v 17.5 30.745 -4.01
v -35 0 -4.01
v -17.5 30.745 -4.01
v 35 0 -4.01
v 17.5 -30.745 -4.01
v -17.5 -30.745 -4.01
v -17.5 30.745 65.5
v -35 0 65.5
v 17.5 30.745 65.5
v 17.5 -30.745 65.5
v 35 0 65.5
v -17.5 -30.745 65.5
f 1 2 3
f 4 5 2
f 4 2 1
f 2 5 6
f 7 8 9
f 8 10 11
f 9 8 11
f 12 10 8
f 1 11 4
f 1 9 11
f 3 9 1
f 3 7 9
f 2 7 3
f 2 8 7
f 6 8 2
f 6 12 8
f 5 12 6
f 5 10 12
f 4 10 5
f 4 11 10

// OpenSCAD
/* doodle-meta {"version":1,"parameters":{"hex_width":{"label":"Hexagon Width","description":"Overall width of the hexagonal cross-section","unit":"mm","feature":"hex_width"},"hex_height":{"label":"Hexagon Height","description":"Overall height of the hexagonal cross-section","unit":"mm","feature":"hex_height"},"prism_depth":{"label":"Prism Depth","description":"Length of the prism along the Y-axis","unit":"mm","feature":"prism_depth"}},"features":{"hex_width":{"kind":"dimension","axis":"x","label":"Hexagon Width"},"hex_height":{"kind":"dimension","axis":"z","label":"Hexagon Height"},"prism_depth":{"kind":"dimension","axis":"y","label":"Prism Depth"}}} */

// Top-level parameters (user-editable)
hex_width = 70.0;
hex_height = 61.49;
prism_depth = 69.51;

// Derived parameters (not user-editable)
// For a flat-top regular hexagon:
// Width (across flats) = sqrt(3) * R
// Height (across points) = 2 * R
// We use the average radius derived from width and height to maintain regularity
// while respecting the measured dimensions as closely as possible.
// R_from_width = hex_width / sqrt(3)
// R_from_height = hex_height / 2
// Using R_from_height as primary for "pointy-top" orientation which matches the 
// "handle" description and typical hex prism orientations where height > width/1.15.
// However, the spec says "flat-top" is inferred. 
// Flat-top: Width = 2*R, Height = sqrt(3)*R.
// Let's check the measurements: Width 70, Height 61.49.
// If Flat-top: R = 35. Height should be 35*sqrt(3) = 60.62. Close to 61.49.
// If Pointy-top: R = 30.745. Width should be 30.745*sqrt(3) = 53.2. Far from 70.
// So it is definitely Flat-top.
// For Flat-top:
// R = hex_width / 2
// Check height: hex_height should be R * sqrt(3).
// We will use hex_width to define the radius R, and construct the hexagon.
// The height parameter is used for validation or if we wanted to stretch it, 
// but for a regular hexagon, width defines it. 
// To respect both measurements slightly better, we can scale the hexagon.
// Base hexagon with circumradius R=1.
// Flat-top vertices: (1,0), (0.5, sqrt(3)/2), (-0.5, sqrt(3)/2), (-1,0), (-0.5, -sqrt(3)/2), (0.5, -sqrt(3)/2)
// Width = 2. Height = sqrt(3).
// Scale X by hex_width/2. Scale Y (which becomes Z in our extrusion) by hex_height/sqrt(3).

module hex_prism() {
    // Define the hexagon in XZ plane (since we extrude along Y)
    // We create a polygon in 2D (X, Z) and extrude along Y.
    
    // Calculate scaling factors
    // Base hexagon points for unit circumradius R=1, flat-top
    // Angles: 0, 60, 120, 180, 240, 300 degrees
    // x = cos(theta), z = sin(theta)
    
    // To make it a regular hexagon matching the bounding box:
    // We want max X = hex_width/2, max Z = hex_height/2.
    // For a regular hexagon, if we align it flat-top:
    // Max X = R. Max Z = R * sqrt(3)/2.
    // So R = hex_width / 2.
    // Then Height = hex_width / 2 * sqrt(3).
    // The measured height is 61.49. 70/2 * 1.732 = 60.62.
    // The difference is small (~1.4%). We will use the width to define the shape 
    // as it is the authoritative max dimension, and scale Z slightly to match height 
    // if we want to be precise to the "measured" box, but "regular hexagon" implies 
    // strict proportions. The prompt says "regular_hexagon". 
    // I will use the width to define the circumradius and let the height fall where it may, 
    // OR scale the Z axis to match the height parameter exactly. 
    // Given "derived_sizes" provides specific height, I will scale the Z axis to match hex_height.
    
    scale_x = hex_width / 2.0;
    scale_z = hex_height / sqrt(3.0); // Because height of flat-top hex is sqrt(3)*R, so R = H/sqrt(3). 
                                      // Wait, if I use scale_x = W/2, then R=W/2. 
                                      // Then natural height is W/2 * sqrt(3).
                                      // If I want height H, I should scale Z by H / (W/2 * sqrt(3)).
    
    // Let's just define the points directly based on width and height to ensure 
    // the bounding box is exactly hex_width x hex_height.
    // This creates a slightly stretched hexagon if W/H != 2/sqrt(3), 
    // but respects the "measured" dimensions.
    
    // Points for a hexagon centered at 0,0 in XZ plane
    // Flat-top orientation:
    // Vertices at angles 0, 60, 120, 180, 240, 300 relative to X axis?
    // No, flat-top means flat edges are horizontal (parallel to X).
    // So vertices are at 30, 90, 150, 210, 270, 330 degrees?
    // Let's check:
    // If vertices are at 0, 60... -> Pointy-top (vertex at right).
    // If vertices are at 30, 90... -> Flat-top (edge between 30 and 90 is vertical? No.)
    
    // Standard Flat-Top Hexagon:
    // Top and Bottom edges are horizontal.
    // Vertices:
    // (W/2, H/4) ? No.
    // Let's use the standard definition:
    // Circumradius R.
    // Flat-top: Vertices at angles 0, 60, 120, 180, 240, 300? 
    // Angle 0 is (R, 0). Angle 60 is (R/2, R*sqrt(3)/2).
    // This has a vertex at the right (X=R). This is "Pointy-Side".
    // "Flat-Top" usually means the top edge is flat.
    // So vertices are at 30, 90, 150, 210, 270, 330.
    // Angle 90 is (0, R). Top vertex.
    // Angle 30 is (R*sqrt(3)/2, R/2).
    // This shape has a vertex at the top. This is "Pointy-Top".
    
    // Let's re-read the uncertainty: "Orientation ... inferred ... as flat-top".
    // In CAD terms, "Flat-Top" often means the top face is a flat edge, not a vertex.
    // If the top is a flat edge, the vertices are at 0, 60, 120... rotated by 30 degrees?
    // If vertices are at 0, 60... -> Vertex at (R,0) and (R/2, H/2). Top is vertex? No, (R/2, H/2) is a vertex.
    // Let's look at the polygon points from the view.
    // View 1 (Front):
    // [0.24, 0.04], [0.03, 0.48], [0.22, 0.95], [0.73, 0.97], [0.97, 0.52], [0.74, 0.06]
    // Normalized 0-1.
    // Top-left (0.24, 0.04) and Top-right (0.74, 0.06). These are close in Y (0.04 vs 0.06).
    // This suggests a flat top edge between these two points.
    // Bottom-left (0.22, 0.95) and Bottom-right (0.73, 0.97). Flat bottom edge.
    // Left-most (0.03, 0.48) and Right-most (0.97, 0.52). These are vertices.
    // So the hexagon has vertices at Left and Right, and flat edges at Top and Bottom.
    // This is "Flat-Top" (and Flat-Bottom).
    // Orientation: Vertices at 0 and 180 degrees (along X axis).
    // So the vertices are at angles 0, 60, 120, 180, 240, 300?
    // If vertex at 0 (Right), vertex at 60 (Top-Right), vertex at 120 (Top-Left)...
    // Wait, if vertex at 0 and 180, then the edge between 60 and 120 is the top edge.
    // Angle 60: (R/2, R*sqrt(3)/2). Angle 120: (-R/2, R*sqrt(3)/2).
    // Yes, this forms a flat top edge at Z = R*sqrt(3)/2.
    // So the circumradius R is aligned with the X-axis.
    // Width (X) = 2 * R.
    // Height (Z) = 2 * (R * sqrt(3)/2) = R * sqrt(3).
    
    // So:
    // R = hex_width / 2.
    // Height = (hex_width / 2) * sqrt(3).
    // We will scale the Z coordinate to match hex_height exactly.
    
    r = hex_width / 2.0;
    z_scale = hex_height / (r * sqrt(3.0));
    
    // Generate points
    // Angles: 0, 60, 120, 180, 240, 300
    // x = r * cos(a)
    // z = r * sin(a) * z_scale
    
    points = [
        [ r * cos(0),   r * sin(0) * z_scale ],
        [ r * cos(60),  r * sin(60) * z_scale ],
        [ r * cos(120), r * sin(120) * z_scale ],
        [ r * cos(180), r * sin(180) * z_scale ],
        [ r * cos(240), r * sin(240) * z_scale ],
        [ r * cos(300), r * sin(300) * z_scale ]
    ];
    
    // Extrude along Y
    // The prism should be centered on Y? 
    // "sit on the build plate: lowest geometry at Z=0"
    // The hexagon is centered at Z=0 in the points above.
    // We need to shift it up by hex_height/2.
    
    translate([0, 0, hex_height/2]) {
        linear_extrude(height = prism_depth, center = true) {
            polygon(points = points);
        }
    }
}

// Instantiate the design
hex_prism();
